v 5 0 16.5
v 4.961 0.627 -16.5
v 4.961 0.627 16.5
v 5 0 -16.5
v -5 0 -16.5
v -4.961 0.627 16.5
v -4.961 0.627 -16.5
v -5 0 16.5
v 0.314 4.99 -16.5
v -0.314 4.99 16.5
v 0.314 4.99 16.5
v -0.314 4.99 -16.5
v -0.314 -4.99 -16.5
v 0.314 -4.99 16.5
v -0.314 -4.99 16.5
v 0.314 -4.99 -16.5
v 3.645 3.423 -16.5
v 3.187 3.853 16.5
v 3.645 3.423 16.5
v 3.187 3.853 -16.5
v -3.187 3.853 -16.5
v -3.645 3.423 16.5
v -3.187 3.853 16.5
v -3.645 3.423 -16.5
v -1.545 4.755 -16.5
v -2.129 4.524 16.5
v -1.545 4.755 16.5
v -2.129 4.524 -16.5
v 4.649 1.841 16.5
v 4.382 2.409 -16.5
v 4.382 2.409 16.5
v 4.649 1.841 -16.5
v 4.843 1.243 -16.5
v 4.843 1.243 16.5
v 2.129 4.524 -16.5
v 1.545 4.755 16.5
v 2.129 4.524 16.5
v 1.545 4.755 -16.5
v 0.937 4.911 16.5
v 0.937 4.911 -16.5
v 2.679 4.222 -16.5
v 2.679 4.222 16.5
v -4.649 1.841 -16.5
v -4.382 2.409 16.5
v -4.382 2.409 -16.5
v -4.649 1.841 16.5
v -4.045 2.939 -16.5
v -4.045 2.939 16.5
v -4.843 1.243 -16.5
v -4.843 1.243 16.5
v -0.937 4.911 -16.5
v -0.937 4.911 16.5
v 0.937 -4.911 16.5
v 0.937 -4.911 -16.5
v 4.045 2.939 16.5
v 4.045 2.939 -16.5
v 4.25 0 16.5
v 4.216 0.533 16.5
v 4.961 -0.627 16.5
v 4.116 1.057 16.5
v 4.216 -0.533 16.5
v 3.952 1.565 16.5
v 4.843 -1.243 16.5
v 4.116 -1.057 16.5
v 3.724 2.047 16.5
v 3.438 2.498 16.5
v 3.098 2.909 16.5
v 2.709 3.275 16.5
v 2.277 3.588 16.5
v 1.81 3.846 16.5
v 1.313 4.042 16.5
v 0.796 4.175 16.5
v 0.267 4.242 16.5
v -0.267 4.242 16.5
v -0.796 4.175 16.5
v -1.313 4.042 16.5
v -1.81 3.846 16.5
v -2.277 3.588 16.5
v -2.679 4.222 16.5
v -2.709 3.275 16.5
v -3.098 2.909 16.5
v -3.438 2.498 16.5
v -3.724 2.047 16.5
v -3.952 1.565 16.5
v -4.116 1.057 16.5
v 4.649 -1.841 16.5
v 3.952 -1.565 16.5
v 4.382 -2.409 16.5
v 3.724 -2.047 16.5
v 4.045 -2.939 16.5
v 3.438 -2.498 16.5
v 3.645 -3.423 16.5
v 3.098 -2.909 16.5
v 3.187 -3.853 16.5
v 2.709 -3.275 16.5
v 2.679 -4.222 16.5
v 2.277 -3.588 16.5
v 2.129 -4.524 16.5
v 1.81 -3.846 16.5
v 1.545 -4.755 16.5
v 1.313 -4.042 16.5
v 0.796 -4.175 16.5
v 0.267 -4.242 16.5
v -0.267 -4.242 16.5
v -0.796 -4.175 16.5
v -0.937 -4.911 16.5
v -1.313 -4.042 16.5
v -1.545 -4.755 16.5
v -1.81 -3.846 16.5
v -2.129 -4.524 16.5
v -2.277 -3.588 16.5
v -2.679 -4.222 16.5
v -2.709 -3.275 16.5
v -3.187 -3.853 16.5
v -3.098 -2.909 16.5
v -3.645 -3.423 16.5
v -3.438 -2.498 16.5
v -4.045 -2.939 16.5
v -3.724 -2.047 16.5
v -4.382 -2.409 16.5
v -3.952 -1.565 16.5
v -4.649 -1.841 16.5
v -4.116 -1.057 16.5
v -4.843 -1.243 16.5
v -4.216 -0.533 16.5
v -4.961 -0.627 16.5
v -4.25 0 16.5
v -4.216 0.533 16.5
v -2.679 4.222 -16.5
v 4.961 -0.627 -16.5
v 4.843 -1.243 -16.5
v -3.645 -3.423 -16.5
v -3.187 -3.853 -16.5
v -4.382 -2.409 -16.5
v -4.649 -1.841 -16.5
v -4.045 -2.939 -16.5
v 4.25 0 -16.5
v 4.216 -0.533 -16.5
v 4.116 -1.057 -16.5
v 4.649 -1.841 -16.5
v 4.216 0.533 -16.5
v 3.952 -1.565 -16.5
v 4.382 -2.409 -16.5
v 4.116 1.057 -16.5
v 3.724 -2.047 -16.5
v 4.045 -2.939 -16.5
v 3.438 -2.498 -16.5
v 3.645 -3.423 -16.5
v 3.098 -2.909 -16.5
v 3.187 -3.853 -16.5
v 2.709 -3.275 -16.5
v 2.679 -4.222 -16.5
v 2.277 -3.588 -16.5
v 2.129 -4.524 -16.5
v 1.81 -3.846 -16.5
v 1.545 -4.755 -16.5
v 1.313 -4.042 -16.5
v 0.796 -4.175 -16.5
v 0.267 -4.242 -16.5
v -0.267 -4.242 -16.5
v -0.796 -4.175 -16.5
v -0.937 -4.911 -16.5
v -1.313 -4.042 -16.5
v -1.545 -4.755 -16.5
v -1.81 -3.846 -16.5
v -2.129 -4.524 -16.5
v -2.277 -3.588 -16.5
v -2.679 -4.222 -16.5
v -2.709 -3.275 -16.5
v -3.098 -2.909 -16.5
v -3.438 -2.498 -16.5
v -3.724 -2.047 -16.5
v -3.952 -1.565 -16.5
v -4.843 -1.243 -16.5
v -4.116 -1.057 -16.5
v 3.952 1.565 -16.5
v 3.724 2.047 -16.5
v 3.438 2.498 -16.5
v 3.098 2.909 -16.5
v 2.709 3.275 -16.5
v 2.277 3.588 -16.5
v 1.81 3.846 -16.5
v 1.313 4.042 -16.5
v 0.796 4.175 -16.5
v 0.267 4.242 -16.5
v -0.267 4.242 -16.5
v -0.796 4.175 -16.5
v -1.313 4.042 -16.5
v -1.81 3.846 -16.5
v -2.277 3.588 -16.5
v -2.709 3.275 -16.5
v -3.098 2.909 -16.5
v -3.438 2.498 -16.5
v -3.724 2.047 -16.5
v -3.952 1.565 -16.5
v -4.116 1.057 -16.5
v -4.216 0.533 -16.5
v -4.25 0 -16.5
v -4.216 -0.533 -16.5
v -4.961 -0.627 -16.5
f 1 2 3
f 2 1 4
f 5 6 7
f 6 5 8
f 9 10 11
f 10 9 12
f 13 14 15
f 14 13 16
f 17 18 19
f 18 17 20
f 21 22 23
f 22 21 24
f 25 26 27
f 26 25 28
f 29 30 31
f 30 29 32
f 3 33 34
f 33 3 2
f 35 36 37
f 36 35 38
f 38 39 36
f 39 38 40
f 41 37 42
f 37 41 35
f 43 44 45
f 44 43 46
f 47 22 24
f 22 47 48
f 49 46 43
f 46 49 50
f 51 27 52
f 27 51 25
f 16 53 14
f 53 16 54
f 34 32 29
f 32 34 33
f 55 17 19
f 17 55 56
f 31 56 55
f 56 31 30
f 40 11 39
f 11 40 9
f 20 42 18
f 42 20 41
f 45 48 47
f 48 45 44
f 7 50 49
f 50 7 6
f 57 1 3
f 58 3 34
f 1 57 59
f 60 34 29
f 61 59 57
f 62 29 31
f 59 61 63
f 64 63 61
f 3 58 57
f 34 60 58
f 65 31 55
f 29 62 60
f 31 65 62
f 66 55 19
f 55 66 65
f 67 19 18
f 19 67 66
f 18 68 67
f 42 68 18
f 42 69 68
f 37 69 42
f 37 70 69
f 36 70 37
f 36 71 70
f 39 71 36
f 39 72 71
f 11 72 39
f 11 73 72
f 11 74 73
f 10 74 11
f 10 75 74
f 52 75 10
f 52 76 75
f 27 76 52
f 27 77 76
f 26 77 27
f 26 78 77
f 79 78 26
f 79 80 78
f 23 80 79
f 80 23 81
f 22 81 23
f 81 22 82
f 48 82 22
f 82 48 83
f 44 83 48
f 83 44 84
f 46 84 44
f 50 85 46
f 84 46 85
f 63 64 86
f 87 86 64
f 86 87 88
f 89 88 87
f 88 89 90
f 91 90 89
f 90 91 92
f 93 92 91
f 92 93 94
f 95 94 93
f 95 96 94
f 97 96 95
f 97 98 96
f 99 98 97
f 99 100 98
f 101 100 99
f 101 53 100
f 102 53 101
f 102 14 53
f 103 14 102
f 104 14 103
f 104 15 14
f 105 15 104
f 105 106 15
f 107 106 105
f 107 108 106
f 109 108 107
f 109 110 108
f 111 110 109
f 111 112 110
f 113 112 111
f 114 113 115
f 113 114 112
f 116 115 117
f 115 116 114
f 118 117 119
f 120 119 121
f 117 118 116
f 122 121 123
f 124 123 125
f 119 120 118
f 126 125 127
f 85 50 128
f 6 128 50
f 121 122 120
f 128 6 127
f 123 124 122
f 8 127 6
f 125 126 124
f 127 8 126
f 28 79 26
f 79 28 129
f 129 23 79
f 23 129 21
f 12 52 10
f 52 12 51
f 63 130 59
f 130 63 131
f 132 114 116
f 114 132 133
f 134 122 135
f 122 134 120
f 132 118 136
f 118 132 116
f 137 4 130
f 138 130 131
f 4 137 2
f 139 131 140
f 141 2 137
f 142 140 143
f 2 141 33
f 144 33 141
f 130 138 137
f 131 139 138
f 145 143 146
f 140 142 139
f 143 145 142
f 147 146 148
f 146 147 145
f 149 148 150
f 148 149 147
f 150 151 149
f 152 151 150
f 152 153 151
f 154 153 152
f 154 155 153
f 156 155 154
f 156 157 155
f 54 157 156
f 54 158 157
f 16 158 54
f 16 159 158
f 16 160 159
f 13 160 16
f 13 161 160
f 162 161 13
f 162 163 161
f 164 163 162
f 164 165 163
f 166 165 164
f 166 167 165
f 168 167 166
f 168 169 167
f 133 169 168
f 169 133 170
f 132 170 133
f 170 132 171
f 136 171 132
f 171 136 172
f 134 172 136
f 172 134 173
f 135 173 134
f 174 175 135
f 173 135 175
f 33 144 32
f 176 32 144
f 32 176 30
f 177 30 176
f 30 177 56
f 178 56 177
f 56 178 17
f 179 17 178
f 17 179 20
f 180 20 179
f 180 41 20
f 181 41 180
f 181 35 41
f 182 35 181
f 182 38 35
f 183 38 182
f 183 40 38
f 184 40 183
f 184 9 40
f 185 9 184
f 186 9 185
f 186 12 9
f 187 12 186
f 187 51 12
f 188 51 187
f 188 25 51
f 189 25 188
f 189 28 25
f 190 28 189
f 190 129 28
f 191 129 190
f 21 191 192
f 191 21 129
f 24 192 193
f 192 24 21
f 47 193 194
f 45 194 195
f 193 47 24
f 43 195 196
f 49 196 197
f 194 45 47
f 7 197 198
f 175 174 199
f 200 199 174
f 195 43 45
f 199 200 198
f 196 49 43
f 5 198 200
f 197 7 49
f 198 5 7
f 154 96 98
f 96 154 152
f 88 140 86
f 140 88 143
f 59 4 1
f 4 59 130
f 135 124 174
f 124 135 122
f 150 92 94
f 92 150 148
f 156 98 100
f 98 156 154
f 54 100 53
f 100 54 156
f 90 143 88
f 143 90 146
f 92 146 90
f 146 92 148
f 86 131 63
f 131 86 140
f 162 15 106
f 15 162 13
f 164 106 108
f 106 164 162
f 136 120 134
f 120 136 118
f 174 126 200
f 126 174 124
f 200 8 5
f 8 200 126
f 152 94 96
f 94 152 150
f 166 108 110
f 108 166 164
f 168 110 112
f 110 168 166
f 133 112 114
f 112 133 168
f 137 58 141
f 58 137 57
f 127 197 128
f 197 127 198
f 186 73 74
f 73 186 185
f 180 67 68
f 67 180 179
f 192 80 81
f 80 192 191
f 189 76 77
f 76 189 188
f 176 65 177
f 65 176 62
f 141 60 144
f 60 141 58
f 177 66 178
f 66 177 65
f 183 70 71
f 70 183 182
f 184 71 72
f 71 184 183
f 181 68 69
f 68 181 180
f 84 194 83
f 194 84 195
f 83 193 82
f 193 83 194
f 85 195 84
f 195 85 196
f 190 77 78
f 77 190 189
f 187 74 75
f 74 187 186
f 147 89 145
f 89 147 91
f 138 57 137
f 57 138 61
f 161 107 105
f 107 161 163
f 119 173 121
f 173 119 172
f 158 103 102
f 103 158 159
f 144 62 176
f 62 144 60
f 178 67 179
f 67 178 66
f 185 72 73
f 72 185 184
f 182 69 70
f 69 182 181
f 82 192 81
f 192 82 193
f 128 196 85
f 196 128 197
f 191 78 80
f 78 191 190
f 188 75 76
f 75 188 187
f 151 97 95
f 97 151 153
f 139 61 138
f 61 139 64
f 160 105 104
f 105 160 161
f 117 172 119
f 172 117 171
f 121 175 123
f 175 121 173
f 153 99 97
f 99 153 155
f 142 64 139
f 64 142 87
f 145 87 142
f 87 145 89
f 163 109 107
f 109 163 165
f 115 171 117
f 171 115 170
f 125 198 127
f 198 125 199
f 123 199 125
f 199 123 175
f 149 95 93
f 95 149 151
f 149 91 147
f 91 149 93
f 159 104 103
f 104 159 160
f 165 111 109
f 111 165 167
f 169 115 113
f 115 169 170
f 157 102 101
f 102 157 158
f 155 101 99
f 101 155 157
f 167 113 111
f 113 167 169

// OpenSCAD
$fn = 50;


difference() {
	union() {
		translate(v = [0, 0, -16.5000000000]) {
			cylinder(h = 33, r = 5.0000000000);
		}
	}
	union() {
		translate(v = [0, 0, -100.0000000000]) {
			cylinder(h = 200, r = 4.2500000000);
		}
	}
}
